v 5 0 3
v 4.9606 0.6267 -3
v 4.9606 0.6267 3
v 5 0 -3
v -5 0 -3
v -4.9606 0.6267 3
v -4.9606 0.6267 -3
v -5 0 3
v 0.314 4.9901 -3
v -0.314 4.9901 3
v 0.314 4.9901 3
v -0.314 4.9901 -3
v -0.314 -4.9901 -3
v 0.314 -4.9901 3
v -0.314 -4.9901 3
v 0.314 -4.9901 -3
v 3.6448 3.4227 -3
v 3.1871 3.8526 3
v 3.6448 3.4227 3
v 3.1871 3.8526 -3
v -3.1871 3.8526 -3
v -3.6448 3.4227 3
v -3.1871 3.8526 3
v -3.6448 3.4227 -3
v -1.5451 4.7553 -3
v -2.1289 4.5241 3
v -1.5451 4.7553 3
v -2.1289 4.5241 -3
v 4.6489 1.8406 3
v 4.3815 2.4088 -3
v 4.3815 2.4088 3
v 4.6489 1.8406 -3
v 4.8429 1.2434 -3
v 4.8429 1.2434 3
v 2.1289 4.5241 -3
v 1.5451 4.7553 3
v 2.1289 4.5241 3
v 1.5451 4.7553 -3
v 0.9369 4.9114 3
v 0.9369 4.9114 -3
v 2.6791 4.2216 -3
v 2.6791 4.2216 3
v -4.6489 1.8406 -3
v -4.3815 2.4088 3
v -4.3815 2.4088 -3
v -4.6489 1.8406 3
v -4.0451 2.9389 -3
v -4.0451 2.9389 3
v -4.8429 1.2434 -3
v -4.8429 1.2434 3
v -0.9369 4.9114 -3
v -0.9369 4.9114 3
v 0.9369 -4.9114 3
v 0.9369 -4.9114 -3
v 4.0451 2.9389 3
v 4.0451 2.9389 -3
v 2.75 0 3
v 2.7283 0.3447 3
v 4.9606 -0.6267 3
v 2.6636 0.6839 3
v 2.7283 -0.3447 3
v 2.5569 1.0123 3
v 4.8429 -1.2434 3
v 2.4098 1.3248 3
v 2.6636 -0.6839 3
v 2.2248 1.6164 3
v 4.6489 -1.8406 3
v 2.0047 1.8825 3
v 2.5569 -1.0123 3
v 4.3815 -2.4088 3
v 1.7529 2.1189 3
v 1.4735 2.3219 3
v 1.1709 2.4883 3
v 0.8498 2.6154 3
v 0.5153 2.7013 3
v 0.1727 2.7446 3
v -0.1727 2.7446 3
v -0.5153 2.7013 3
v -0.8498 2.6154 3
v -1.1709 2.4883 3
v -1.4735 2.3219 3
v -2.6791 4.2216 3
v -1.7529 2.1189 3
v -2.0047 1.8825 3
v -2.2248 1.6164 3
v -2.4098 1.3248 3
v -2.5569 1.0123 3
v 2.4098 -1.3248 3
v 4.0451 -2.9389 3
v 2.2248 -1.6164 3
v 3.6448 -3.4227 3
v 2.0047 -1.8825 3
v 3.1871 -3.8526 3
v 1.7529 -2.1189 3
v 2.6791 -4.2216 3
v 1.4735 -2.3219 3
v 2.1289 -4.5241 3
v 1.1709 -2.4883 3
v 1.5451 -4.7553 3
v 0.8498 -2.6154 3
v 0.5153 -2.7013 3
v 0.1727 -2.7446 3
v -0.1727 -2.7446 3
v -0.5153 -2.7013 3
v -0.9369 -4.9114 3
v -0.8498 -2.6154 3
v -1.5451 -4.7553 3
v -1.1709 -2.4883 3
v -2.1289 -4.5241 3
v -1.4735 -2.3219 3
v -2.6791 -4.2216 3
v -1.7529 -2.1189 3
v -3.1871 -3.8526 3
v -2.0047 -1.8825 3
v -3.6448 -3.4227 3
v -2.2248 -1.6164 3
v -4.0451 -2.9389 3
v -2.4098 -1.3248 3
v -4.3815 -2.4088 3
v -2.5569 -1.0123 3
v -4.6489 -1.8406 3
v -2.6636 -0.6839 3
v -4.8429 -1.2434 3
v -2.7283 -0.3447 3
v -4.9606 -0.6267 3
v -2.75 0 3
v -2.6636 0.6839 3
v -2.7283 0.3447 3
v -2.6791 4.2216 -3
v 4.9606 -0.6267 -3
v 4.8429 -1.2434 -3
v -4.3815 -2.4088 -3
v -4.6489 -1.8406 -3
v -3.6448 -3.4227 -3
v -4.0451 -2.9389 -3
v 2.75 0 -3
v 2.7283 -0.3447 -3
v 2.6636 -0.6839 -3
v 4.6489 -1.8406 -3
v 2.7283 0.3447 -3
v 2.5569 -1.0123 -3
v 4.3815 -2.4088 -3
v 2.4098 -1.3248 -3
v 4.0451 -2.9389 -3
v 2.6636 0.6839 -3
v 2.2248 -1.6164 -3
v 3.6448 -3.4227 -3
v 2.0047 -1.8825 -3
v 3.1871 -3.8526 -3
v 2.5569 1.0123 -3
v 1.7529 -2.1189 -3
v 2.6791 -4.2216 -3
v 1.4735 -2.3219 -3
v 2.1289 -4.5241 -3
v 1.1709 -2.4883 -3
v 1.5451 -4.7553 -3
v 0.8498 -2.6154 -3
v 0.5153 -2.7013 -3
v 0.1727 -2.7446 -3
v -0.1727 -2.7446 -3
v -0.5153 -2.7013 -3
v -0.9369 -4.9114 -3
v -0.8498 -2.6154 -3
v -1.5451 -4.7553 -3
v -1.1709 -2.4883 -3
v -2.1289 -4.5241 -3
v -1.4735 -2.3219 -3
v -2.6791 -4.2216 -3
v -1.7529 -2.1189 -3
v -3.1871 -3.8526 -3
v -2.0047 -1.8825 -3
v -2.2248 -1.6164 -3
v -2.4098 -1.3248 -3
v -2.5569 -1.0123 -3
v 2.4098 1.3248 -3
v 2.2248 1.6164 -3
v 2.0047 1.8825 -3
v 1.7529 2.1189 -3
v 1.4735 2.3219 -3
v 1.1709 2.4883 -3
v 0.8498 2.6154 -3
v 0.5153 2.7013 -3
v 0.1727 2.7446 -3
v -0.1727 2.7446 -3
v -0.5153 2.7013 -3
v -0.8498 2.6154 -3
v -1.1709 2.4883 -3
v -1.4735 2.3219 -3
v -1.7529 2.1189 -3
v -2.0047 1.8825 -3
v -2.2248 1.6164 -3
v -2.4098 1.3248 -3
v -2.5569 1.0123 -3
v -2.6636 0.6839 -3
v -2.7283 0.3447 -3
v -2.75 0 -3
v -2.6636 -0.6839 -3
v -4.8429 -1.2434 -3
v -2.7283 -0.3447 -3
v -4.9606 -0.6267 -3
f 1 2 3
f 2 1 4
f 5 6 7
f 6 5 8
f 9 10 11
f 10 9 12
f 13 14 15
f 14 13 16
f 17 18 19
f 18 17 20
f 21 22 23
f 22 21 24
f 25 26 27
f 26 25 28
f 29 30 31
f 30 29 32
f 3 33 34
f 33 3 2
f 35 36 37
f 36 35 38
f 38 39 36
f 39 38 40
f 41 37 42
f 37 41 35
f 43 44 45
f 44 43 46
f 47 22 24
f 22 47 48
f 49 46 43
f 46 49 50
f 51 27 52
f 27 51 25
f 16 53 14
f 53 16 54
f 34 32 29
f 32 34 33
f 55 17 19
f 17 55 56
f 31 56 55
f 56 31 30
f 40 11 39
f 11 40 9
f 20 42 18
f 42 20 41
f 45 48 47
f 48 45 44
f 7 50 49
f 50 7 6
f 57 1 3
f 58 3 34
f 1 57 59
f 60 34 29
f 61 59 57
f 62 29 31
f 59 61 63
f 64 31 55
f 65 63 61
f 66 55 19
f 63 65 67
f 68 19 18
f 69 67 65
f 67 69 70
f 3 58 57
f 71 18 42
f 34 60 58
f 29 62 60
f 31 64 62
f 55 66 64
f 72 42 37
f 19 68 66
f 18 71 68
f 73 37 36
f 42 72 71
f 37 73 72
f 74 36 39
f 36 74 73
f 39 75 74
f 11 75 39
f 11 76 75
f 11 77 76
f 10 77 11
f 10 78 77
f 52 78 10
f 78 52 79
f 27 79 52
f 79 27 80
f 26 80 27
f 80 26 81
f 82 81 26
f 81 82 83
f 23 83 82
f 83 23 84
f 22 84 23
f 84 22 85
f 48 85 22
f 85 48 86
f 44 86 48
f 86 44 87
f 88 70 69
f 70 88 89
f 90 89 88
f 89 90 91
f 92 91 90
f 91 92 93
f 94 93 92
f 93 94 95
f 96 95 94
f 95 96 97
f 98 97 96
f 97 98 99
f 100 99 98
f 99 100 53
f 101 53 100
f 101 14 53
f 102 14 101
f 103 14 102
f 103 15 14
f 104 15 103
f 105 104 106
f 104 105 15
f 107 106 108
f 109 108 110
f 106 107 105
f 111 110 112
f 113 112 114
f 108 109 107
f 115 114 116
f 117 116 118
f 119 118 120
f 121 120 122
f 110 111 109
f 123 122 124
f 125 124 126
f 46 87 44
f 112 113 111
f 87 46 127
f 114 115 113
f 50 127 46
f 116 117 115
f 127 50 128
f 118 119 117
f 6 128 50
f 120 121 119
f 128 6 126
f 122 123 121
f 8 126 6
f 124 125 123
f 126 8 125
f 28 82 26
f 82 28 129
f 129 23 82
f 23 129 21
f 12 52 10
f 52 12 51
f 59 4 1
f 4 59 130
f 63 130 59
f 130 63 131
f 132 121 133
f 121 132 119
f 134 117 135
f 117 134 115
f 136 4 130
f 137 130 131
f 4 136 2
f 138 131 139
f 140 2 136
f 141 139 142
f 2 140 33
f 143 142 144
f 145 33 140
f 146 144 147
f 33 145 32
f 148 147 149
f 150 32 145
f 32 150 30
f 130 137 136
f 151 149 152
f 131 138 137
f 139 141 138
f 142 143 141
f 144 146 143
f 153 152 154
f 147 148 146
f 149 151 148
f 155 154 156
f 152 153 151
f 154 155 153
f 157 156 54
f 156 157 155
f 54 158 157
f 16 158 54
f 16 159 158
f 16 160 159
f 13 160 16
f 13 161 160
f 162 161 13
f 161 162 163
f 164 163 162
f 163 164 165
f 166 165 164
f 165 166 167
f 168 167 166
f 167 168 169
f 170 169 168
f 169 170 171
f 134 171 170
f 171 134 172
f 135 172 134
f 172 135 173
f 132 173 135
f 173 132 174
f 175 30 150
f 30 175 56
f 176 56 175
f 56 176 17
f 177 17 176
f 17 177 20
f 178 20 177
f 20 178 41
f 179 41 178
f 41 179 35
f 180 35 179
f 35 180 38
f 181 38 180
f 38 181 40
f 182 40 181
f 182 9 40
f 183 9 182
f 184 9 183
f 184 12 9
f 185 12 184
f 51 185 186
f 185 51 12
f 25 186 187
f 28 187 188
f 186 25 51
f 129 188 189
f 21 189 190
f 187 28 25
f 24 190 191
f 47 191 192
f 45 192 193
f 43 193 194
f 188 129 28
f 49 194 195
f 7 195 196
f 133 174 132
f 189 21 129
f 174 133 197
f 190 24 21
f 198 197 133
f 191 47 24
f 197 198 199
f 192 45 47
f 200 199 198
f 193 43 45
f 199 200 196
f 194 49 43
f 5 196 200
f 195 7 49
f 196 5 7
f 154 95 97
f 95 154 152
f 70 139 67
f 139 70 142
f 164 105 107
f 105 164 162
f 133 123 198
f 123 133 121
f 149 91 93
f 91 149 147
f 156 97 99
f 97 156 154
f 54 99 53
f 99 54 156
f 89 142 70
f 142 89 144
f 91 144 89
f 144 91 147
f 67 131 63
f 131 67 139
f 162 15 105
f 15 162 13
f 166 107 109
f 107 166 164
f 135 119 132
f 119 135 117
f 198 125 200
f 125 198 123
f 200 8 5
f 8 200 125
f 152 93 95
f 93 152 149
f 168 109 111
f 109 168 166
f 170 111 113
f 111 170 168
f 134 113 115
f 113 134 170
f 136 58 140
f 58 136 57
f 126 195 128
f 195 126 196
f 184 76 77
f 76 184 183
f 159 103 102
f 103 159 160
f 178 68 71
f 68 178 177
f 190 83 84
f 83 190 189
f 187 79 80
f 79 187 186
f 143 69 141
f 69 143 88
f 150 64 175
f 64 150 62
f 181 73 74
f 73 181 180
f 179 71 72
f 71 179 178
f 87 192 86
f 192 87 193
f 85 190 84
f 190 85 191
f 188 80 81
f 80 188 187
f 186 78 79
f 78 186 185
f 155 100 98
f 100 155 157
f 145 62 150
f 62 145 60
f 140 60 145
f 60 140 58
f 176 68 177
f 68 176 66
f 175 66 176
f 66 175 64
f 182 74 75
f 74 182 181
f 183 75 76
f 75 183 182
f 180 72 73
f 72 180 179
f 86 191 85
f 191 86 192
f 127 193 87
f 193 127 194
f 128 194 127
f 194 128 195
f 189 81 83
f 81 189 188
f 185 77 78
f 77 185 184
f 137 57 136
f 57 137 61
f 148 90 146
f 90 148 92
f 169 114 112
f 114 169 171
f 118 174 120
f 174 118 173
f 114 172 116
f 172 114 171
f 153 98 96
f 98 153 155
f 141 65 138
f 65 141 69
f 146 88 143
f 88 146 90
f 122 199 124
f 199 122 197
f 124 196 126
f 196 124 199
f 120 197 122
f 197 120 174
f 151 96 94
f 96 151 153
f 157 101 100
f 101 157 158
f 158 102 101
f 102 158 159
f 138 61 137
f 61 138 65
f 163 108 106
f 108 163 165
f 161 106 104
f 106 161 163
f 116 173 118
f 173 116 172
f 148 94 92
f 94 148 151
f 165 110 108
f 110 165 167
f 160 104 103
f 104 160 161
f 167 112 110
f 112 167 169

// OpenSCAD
$fn = 50;


difference() {
	union() {
		translate(v = [0, 0, -3.0000000000]) {
			cylinder(h = 6, r = 5.0000000000);
		}
	}
	union() {
		translate(v = [0, 0, -100.0000000000]) {
			cylinder(h = 200, r = 2.7500000000);
		}
	}
}
